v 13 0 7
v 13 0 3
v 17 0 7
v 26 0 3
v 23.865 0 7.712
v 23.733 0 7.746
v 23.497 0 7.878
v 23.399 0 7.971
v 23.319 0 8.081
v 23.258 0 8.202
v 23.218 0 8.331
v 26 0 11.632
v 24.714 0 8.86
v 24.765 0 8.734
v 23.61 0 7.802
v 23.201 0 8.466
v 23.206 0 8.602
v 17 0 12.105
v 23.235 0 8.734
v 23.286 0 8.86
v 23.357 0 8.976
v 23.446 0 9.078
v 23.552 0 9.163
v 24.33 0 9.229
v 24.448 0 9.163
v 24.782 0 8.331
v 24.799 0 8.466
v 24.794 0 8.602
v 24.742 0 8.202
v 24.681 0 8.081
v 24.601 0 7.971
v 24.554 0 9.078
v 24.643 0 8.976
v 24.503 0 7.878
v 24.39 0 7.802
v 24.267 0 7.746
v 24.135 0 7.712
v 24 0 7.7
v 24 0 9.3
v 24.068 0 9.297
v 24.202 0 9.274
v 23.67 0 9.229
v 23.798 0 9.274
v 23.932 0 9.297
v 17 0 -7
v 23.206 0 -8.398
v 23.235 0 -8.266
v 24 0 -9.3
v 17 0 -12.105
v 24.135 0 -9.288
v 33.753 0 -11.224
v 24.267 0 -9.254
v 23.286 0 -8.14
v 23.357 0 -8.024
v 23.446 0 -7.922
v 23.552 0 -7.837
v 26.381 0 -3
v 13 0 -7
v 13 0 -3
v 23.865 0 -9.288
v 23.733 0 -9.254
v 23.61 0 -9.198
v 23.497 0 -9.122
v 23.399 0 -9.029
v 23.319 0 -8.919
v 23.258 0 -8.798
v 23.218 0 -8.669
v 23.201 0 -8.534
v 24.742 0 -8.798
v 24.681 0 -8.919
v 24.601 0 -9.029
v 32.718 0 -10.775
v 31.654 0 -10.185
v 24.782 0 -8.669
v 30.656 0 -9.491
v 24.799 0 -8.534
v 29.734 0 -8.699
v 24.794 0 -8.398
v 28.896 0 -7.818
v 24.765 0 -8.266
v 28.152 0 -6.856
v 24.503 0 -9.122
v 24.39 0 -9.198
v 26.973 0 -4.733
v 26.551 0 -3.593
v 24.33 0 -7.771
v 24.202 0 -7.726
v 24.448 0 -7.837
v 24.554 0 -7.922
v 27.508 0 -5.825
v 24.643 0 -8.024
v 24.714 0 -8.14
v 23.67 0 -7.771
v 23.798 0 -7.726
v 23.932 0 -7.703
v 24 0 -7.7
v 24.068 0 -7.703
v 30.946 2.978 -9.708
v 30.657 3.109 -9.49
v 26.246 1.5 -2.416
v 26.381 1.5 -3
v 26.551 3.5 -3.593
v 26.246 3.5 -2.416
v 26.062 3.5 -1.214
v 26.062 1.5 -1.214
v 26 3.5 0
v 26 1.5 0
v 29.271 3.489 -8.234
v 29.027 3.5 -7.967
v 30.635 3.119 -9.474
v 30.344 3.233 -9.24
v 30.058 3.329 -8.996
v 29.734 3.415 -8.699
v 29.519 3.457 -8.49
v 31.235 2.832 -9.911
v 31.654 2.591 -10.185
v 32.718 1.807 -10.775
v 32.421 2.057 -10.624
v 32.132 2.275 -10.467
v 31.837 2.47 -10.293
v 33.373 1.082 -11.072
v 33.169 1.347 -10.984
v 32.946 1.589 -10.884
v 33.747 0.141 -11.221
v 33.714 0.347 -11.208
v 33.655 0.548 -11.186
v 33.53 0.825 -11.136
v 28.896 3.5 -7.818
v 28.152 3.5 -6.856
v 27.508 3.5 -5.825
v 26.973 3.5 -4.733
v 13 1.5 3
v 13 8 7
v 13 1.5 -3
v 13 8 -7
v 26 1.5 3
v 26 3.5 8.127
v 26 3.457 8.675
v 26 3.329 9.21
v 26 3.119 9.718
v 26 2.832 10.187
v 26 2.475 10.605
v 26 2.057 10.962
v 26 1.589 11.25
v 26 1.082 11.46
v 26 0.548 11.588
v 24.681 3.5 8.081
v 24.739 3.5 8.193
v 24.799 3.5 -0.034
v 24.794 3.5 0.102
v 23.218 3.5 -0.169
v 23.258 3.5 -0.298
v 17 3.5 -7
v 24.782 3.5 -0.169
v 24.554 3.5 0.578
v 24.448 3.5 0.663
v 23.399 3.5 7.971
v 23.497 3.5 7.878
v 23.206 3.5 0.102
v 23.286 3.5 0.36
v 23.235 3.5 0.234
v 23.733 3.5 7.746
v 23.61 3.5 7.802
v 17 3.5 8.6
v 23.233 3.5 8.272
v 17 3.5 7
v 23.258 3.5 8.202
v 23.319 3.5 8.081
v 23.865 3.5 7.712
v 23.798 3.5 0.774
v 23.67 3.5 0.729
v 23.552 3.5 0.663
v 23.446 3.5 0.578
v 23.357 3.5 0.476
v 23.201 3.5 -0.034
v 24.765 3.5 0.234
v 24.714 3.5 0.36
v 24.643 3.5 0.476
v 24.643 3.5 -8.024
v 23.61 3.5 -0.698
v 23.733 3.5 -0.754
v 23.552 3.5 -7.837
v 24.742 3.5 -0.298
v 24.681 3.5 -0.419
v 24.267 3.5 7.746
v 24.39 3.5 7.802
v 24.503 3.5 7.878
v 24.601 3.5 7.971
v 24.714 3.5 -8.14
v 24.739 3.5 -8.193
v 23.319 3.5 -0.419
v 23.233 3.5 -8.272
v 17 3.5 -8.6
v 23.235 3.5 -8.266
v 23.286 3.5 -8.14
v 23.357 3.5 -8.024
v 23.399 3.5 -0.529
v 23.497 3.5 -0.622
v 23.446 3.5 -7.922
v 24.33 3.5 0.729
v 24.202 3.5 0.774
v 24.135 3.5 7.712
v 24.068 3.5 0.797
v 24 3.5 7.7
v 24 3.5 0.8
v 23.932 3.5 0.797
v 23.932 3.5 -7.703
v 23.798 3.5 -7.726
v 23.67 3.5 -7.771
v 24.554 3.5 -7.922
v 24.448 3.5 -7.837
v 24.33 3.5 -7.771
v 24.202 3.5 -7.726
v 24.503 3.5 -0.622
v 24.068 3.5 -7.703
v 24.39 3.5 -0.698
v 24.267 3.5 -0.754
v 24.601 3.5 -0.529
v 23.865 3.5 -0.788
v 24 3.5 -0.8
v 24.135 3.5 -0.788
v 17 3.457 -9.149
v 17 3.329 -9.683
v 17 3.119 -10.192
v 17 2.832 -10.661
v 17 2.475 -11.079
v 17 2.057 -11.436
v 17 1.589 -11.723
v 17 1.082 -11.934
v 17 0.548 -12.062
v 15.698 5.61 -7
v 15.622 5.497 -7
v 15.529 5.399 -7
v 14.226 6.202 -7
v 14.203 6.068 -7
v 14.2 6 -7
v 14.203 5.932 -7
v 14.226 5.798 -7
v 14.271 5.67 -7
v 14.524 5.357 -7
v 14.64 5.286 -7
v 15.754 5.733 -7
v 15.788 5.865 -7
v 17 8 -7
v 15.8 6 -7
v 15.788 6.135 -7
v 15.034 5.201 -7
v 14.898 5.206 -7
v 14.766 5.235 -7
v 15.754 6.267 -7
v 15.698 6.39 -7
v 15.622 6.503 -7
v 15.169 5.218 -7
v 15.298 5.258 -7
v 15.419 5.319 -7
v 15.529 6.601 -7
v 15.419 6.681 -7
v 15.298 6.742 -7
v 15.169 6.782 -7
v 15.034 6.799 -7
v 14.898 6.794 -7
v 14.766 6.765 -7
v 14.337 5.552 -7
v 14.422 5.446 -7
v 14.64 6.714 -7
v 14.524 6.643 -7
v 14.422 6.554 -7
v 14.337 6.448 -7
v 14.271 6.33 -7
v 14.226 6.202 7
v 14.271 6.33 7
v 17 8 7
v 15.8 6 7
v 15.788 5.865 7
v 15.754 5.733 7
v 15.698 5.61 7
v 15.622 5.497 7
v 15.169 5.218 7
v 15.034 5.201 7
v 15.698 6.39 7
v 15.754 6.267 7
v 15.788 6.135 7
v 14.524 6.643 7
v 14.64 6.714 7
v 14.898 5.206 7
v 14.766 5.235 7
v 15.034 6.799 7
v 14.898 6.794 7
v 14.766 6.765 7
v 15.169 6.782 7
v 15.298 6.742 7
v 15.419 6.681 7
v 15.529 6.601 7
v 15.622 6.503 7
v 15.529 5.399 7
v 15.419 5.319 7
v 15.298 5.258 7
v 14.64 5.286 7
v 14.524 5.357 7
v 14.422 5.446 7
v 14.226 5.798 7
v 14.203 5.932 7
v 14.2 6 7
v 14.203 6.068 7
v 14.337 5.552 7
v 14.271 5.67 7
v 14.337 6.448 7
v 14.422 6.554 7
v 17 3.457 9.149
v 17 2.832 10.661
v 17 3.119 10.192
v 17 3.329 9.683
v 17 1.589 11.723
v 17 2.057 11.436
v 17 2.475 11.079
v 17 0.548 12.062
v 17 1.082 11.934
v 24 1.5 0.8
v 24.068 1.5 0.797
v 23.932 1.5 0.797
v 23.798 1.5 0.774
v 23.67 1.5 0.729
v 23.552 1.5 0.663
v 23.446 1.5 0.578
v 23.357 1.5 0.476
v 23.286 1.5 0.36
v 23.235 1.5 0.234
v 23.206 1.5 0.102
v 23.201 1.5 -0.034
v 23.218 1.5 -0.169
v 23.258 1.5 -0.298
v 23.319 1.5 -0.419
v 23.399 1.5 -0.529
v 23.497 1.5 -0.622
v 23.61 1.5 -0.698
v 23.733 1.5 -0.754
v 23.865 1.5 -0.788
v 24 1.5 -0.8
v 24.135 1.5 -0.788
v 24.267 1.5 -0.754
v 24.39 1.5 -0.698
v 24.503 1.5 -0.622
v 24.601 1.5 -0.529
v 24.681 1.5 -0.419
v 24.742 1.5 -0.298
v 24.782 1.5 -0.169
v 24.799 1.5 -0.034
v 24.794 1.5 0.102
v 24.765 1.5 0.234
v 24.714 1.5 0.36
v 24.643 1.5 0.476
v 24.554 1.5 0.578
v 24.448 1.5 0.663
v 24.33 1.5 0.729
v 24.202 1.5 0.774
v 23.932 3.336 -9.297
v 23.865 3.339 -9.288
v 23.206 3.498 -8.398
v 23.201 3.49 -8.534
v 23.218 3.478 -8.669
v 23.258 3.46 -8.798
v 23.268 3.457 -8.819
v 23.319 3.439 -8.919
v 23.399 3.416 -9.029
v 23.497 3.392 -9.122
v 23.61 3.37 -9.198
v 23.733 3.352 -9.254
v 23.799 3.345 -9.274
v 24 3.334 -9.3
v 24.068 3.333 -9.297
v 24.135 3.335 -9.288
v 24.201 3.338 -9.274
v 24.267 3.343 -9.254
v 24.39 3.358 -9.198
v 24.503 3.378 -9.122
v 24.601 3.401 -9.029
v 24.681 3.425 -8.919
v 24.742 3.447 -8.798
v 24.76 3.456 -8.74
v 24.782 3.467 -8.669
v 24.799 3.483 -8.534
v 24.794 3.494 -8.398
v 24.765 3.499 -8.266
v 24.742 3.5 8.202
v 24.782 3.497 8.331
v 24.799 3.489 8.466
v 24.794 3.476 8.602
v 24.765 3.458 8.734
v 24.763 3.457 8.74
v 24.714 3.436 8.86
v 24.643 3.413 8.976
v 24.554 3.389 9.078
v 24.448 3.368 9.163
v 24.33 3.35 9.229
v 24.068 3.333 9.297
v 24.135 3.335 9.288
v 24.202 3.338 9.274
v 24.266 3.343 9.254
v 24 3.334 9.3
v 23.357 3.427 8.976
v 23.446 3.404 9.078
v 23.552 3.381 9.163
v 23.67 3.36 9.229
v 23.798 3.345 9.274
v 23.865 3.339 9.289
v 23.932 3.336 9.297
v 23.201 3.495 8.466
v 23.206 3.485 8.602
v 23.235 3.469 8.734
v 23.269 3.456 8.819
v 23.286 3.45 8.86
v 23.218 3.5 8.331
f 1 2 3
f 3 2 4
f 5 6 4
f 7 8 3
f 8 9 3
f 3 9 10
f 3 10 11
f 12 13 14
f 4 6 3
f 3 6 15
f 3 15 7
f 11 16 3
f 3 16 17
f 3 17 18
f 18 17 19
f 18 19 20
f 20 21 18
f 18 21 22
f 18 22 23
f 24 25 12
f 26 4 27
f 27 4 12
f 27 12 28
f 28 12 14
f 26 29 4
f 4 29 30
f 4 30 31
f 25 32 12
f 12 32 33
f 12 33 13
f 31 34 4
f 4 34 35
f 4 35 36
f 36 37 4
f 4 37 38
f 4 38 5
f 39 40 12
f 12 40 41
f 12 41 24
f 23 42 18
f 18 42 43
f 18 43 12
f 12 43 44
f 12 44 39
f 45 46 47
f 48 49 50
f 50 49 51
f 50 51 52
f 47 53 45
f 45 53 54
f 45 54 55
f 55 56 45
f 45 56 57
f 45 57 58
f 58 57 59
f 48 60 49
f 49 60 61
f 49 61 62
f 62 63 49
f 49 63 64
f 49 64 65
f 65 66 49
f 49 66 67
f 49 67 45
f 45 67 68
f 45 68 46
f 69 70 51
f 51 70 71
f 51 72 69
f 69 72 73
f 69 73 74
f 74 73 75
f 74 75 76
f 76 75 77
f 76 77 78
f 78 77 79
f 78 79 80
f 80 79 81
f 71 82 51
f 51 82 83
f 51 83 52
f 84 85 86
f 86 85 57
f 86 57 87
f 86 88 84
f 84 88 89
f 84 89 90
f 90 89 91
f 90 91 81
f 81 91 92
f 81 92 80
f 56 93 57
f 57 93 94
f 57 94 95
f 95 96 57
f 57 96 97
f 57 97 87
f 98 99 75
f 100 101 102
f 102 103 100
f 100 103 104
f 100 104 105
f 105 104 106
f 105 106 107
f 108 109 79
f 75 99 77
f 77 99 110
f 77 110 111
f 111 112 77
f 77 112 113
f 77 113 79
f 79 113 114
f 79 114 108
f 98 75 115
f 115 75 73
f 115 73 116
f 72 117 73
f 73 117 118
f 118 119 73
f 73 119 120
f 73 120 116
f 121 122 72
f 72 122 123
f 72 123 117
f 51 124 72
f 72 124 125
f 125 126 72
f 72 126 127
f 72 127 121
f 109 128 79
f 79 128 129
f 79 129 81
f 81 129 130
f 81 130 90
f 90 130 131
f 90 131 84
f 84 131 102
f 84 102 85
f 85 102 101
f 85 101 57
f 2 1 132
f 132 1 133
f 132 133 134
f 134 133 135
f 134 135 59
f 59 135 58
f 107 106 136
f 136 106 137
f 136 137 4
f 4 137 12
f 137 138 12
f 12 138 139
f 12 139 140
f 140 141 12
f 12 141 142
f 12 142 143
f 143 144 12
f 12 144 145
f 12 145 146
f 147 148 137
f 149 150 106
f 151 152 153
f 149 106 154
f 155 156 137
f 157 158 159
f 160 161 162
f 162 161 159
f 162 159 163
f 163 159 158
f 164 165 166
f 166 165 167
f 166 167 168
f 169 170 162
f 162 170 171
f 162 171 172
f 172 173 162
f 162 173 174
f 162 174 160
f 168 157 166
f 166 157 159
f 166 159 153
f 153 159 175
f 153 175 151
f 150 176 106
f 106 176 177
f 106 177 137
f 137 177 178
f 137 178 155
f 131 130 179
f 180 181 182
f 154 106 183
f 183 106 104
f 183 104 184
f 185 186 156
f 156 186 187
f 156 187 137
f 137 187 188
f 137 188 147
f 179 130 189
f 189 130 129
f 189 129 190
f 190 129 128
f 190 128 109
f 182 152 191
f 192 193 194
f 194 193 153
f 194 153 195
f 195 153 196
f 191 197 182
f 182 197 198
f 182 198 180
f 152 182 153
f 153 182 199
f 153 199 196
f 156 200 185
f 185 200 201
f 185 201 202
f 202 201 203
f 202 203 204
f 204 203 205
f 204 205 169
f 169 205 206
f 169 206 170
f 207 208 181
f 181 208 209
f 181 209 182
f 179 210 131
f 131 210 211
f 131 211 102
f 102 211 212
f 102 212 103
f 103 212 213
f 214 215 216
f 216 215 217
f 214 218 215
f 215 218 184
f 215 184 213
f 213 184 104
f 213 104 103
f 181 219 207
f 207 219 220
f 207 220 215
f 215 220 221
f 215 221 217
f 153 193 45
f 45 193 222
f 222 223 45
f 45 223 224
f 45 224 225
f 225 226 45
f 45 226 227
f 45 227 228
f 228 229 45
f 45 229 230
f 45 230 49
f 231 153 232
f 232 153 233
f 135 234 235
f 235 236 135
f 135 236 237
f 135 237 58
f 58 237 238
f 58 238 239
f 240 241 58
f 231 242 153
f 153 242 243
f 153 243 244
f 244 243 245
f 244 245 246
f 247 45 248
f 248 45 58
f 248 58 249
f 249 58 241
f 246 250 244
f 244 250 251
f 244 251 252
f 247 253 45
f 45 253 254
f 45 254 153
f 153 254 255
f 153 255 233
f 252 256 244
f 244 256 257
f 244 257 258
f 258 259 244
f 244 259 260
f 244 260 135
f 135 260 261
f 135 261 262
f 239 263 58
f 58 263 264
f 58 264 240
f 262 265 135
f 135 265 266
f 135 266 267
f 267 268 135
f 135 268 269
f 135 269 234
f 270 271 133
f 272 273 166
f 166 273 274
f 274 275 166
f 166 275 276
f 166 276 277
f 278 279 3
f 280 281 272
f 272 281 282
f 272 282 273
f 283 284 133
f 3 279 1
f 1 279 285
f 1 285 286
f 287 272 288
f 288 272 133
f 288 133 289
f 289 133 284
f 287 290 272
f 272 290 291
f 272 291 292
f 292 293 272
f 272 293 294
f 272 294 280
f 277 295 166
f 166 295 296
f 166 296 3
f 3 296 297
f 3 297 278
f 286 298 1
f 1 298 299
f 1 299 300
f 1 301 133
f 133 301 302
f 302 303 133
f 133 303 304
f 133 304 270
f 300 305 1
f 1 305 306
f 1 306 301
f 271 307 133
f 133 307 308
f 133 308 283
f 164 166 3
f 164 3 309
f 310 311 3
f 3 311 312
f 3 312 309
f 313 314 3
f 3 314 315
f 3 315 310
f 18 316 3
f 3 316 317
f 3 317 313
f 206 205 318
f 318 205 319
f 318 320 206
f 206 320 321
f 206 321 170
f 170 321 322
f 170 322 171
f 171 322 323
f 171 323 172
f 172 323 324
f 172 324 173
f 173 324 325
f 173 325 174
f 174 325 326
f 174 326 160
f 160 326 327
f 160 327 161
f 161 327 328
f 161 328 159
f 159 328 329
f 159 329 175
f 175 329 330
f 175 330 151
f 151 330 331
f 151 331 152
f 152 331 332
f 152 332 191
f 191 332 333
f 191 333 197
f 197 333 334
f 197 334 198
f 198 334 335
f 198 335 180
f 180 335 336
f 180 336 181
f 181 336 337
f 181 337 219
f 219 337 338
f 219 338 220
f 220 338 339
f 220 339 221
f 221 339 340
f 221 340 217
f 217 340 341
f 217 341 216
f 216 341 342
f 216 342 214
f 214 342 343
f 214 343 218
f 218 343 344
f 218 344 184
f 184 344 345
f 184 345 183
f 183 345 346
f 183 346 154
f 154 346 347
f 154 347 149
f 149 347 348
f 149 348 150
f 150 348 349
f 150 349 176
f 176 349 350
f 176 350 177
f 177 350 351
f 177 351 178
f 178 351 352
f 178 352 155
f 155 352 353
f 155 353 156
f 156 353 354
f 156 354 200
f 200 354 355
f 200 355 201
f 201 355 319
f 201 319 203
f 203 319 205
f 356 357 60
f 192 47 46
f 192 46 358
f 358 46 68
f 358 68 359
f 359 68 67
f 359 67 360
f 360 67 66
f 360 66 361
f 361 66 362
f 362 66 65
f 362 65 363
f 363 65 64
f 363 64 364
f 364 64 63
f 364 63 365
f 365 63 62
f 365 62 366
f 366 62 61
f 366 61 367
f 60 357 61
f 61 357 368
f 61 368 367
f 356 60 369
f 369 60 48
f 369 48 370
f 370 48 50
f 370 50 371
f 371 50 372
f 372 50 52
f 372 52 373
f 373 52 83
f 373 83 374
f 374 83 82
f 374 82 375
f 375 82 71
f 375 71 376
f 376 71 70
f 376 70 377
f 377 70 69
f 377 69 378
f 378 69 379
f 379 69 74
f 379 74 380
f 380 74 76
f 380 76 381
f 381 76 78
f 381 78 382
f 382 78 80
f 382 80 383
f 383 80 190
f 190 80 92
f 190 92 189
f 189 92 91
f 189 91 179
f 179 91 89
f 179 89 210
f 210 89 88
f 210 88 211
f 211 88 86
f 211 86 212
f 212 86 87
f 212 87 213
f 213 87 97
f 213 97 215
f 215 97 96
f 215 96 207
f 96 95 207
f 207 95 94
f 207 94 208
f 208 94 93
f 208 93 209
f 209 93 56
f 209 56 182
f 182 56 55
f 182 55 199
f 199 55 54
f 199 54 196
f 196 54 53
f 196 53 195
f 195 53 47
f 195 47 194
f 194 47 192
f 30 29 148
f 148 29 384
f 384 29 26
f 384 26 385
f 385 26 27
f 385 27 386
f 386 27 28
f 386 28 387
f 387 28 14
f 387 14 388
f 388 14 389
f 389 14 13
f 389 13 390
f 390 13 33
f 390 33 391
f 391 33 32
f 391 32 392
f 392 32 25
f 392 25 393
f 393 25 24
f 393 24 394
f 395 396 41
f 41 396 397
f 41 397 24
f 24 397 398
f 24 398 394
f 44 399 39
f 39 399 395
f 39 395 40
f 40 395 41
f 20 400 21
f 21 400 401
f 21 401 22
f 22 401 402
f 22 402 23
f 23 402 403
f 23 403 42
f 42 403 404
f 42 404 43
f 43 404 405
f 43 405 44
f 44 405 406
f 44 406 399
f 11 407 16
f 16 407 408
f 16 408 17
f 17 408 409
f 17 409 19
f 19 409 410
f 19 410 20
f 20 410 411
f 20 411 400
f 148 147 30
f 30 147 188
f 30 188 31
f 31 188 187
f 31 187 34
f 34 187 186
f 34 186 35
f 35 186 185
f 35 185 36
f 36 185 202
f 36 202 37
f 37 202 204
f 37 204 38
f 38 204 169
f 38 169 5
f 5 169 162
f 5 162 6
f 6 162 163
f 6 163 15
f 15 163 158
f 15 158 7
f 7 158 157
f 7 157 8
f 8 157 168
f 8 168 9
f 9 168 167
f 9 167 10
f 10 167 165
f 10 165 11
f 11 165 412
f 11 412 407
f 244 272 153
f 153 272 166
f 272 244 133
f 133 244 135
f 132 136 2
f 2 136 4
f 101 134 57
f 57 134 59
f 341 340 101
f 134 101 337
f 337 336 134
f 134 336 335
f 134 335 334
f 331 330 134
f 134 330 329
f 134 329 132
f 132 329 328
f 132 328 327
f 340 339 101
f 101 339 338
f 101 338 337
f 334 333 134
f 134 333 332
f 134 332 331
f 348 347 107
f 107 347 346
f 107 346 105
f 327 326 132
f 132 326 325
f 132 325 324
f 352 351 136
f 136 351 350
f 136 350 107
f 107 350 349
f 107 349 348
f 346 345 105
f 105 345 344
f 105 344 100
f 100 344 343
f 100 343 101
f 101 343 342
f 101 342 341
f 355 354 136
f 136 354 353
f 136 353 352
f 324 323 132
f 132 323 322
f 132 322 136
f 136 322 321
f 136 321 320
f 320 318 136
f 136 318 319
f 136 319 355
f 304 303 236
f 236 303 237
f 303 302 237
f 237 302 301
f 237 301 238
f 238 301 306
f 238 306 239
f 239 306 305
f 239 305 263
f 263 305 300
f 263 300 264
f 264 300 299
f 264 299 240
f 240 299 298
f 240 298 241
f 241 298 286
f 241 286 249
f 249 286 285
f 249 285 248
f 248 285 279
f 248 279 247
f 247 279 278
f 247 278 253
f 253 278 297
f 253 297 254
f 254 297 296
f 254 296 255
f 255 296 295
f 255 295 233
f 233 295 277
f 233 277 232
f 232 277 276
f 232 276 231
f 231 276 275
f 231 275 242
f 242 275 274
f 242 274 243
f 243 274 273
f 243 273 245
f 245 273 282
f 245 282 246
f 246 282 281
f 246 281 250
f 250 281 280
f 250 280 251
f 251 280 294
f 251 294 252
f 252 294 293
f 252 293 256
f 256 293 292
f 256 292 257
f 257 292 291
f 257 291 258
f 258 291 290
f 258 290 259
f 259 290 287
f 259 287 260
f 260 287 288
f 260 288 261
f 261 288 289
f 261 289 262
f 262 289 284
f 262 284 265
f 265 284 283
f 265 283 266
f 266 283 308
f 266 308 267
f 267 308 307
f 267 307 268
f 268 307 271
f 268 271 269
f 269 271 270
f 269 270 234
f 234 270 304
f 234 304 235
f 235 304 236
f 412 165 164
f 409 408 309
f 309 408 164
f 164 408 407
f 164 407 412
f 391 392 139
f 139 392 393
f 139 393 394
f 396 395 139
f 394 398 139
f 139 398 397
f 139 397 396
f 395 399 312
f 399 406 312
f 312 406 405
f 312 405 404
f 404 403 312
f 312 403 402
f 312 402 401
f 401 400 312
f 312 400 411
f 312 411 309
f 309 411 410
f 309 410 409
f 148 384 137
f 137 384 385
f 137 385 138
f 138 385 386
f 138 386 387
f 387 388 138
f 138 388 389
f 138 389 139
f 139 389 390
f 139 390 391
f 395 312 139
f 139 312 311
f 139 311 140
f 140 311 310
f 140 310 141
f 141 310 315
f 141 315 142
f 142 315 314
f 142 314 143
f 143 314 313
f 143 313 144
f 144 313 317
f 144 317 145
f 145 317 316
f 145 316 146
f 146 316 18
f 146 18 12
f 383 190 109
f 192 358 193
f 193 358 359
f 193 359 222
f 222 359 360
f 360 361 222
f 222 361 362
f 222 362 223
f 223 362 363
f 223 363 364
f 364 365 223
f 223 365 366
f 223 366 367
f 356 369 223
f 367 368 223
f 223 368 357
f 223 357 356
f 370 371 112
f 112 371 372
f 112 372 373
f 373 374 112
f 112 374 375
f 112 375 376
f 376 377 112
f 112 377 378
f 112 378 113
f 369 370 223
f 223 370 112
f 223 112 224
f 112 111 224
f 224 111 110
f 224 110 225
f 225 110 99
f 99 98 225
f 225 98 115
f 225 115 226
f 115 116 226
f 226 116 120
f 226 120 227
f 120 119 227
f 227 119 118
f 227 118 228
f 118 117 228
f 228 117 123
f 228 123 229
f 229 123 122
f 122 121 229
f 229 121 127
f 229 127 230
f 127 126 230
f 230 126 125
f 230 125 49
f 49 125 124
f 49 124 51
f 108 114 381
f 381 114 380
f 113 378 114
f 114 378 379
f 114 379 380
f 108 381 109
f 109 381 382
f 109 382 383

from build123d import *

# Parameters (mm, degrees)
BOSS_EXTRUDE1_DEPTH = 3.5
SKETCH2_R           = 0.8
SCREW_HOLES_DEPTH   = 37.028935124
SKETCH3_W           = 4
SKETCH3_H           = 14
BOSS_EXTRUDE2_DEPTH = 8
WIRE_CANAL_DEPTH    = 1.5
CUT_EXTRUDE2_START  = 13
SKETCH5_R           = 0.8
CUT_EXTRUDE2_DEPTH  = 50.74008936
FILLET1_R           = 3.5


with BuildPart() as part:
    # Sketch1 → Boss-Extrude1 (new body)
    with BuildSketch(Plane(origin=(0, 0, 0), x_dir=(1, 0, 0), z_dir=(0, 1, 0))):
        with BuildLine():
            Line((17, -10), (17, -12.105263158))
            Line((17, -12.105263158), (26, -11.631578947))
            Line((26, -11.631578947), (26, 0))
            ThreePointArc((26, 0), (28.126845638, 6.820617489), (33.753470489, 11.223501553))
            Line((33.753470489, 11.223501553), (17, 12.105263158))
            Line((17, 12.105263158), (17, 10))
            Line((17, 10), (17, 7))
            Line((17, 7), (13, 7))
            Line((13, 7), (13, 0))
            Line((13, 0), (13, -7))
            Line((13, -7), (17, -7))
            Line((17, -7), (17, -10))
        make_face()
    extrude(amount=BOSS_EXTRUDE1_DEPTH)

    # Sketch2 → Screw Holes (cut, through all)
    with BuildSketch(Plane(origin=(0, 0, 0), x_dir=(1, 0, 0), z_dir=(0, 1, 0))):
        with Locations(Location((24, 8.5, 0), (0, 0, 270))):
            Circle(SKETCH2_R)
        with Locations(Location((24, 0, 0), (0, 0, 270))):
            Circle(SKETCH2_R)
        with Locations(Location((24, -8.5, 0), (0, 0, 270))):
            Circle(SKETCH2_R)
    extrude(amount=SCREW_HOLES_DEPTH, mode=Mode.SUBTRACT)

    # Sketch3 → Boss-Extrude2 (add)
    with BuildSketch(Plane(origin=(0, 0, 0), x_dir=(1, 0, 0), z_dir=(0, 1, 0))):
        with Locations((15, 0)):
            Rectangle(SKETCH3_W, SKETCH3_H)
    extrude(amount=BOSS_EXTRUDE2_DEPTH)

    # Sketch4 → Wire Canal (cut)
    with BuildSketch(Plane(origin=(0, 0, 0), x_dir=(1, 0, 0), z_dir=(0, 1, 0))):
        Polygon((13, 0), (13, 3), (26.381049961, 3), (26.381049961, -3), (13, -3), align=None)
    extrude(amount=WIRE_CANAL_DEPTH, mode=Mode.SUBTRACT)

    # Sketch5 → Cut-Extrude2 (cut, through all)
    with BuildSketch(Plane.XY.offset(CUT_EXTRUDE2_START)):
        with Locations(Location((15, 6, 0), (0, 0, 180))):
            Circle(SKETCH5_R)
    extrude(amount=-CUT_EXTRUDE2_DEPTH, mode=Mode.SUBTRACT)

    # Fillet1
    # the kernel refuses this fillet: 3.5 mm, written as the material it takes off along each edge
    with BuildSketch(Plane(origin=(8.262093993, 3.5, 12.565152948), x_dir=(0, -1, 0), z_dir=(0.9986178293325098, 0, -0.05255883312276359))) as fillet1_piece_1:
        with BuildLine():
            CenterArc((FILLET1_R, FILLET1_R), FILLET1_R, 180, 90)
            Line((0, FILLET1_R), (0, 0))
            Line((0, 0), (FILLET1_R, 0))
        make_face()
    extrude(amount=26.512456753, mode=Mode.SUBTRACT)
    with BuildSketch(Plane(origin=(42.491376496, 3.5, -10.763611763), x_dir=(-0.05255883312276374, 0, 0.9986178293325098), z_dir=(-0.9986178293325098, 0, -0.05255883312276374))) as fillet1_piece_2:
        with BuildLine():
            CenterArc((FILLET1_R, -FILLET1_R), FILLET1_R, 90, 90)
            Line((0, -FILLET1_R), (0, 0))
            Line((0, 0), (FILLET1_R, 0))
        make_face()
    extrude(amount=34.276658695, mode=Mode.SUBTRACT)


solid = part.part
